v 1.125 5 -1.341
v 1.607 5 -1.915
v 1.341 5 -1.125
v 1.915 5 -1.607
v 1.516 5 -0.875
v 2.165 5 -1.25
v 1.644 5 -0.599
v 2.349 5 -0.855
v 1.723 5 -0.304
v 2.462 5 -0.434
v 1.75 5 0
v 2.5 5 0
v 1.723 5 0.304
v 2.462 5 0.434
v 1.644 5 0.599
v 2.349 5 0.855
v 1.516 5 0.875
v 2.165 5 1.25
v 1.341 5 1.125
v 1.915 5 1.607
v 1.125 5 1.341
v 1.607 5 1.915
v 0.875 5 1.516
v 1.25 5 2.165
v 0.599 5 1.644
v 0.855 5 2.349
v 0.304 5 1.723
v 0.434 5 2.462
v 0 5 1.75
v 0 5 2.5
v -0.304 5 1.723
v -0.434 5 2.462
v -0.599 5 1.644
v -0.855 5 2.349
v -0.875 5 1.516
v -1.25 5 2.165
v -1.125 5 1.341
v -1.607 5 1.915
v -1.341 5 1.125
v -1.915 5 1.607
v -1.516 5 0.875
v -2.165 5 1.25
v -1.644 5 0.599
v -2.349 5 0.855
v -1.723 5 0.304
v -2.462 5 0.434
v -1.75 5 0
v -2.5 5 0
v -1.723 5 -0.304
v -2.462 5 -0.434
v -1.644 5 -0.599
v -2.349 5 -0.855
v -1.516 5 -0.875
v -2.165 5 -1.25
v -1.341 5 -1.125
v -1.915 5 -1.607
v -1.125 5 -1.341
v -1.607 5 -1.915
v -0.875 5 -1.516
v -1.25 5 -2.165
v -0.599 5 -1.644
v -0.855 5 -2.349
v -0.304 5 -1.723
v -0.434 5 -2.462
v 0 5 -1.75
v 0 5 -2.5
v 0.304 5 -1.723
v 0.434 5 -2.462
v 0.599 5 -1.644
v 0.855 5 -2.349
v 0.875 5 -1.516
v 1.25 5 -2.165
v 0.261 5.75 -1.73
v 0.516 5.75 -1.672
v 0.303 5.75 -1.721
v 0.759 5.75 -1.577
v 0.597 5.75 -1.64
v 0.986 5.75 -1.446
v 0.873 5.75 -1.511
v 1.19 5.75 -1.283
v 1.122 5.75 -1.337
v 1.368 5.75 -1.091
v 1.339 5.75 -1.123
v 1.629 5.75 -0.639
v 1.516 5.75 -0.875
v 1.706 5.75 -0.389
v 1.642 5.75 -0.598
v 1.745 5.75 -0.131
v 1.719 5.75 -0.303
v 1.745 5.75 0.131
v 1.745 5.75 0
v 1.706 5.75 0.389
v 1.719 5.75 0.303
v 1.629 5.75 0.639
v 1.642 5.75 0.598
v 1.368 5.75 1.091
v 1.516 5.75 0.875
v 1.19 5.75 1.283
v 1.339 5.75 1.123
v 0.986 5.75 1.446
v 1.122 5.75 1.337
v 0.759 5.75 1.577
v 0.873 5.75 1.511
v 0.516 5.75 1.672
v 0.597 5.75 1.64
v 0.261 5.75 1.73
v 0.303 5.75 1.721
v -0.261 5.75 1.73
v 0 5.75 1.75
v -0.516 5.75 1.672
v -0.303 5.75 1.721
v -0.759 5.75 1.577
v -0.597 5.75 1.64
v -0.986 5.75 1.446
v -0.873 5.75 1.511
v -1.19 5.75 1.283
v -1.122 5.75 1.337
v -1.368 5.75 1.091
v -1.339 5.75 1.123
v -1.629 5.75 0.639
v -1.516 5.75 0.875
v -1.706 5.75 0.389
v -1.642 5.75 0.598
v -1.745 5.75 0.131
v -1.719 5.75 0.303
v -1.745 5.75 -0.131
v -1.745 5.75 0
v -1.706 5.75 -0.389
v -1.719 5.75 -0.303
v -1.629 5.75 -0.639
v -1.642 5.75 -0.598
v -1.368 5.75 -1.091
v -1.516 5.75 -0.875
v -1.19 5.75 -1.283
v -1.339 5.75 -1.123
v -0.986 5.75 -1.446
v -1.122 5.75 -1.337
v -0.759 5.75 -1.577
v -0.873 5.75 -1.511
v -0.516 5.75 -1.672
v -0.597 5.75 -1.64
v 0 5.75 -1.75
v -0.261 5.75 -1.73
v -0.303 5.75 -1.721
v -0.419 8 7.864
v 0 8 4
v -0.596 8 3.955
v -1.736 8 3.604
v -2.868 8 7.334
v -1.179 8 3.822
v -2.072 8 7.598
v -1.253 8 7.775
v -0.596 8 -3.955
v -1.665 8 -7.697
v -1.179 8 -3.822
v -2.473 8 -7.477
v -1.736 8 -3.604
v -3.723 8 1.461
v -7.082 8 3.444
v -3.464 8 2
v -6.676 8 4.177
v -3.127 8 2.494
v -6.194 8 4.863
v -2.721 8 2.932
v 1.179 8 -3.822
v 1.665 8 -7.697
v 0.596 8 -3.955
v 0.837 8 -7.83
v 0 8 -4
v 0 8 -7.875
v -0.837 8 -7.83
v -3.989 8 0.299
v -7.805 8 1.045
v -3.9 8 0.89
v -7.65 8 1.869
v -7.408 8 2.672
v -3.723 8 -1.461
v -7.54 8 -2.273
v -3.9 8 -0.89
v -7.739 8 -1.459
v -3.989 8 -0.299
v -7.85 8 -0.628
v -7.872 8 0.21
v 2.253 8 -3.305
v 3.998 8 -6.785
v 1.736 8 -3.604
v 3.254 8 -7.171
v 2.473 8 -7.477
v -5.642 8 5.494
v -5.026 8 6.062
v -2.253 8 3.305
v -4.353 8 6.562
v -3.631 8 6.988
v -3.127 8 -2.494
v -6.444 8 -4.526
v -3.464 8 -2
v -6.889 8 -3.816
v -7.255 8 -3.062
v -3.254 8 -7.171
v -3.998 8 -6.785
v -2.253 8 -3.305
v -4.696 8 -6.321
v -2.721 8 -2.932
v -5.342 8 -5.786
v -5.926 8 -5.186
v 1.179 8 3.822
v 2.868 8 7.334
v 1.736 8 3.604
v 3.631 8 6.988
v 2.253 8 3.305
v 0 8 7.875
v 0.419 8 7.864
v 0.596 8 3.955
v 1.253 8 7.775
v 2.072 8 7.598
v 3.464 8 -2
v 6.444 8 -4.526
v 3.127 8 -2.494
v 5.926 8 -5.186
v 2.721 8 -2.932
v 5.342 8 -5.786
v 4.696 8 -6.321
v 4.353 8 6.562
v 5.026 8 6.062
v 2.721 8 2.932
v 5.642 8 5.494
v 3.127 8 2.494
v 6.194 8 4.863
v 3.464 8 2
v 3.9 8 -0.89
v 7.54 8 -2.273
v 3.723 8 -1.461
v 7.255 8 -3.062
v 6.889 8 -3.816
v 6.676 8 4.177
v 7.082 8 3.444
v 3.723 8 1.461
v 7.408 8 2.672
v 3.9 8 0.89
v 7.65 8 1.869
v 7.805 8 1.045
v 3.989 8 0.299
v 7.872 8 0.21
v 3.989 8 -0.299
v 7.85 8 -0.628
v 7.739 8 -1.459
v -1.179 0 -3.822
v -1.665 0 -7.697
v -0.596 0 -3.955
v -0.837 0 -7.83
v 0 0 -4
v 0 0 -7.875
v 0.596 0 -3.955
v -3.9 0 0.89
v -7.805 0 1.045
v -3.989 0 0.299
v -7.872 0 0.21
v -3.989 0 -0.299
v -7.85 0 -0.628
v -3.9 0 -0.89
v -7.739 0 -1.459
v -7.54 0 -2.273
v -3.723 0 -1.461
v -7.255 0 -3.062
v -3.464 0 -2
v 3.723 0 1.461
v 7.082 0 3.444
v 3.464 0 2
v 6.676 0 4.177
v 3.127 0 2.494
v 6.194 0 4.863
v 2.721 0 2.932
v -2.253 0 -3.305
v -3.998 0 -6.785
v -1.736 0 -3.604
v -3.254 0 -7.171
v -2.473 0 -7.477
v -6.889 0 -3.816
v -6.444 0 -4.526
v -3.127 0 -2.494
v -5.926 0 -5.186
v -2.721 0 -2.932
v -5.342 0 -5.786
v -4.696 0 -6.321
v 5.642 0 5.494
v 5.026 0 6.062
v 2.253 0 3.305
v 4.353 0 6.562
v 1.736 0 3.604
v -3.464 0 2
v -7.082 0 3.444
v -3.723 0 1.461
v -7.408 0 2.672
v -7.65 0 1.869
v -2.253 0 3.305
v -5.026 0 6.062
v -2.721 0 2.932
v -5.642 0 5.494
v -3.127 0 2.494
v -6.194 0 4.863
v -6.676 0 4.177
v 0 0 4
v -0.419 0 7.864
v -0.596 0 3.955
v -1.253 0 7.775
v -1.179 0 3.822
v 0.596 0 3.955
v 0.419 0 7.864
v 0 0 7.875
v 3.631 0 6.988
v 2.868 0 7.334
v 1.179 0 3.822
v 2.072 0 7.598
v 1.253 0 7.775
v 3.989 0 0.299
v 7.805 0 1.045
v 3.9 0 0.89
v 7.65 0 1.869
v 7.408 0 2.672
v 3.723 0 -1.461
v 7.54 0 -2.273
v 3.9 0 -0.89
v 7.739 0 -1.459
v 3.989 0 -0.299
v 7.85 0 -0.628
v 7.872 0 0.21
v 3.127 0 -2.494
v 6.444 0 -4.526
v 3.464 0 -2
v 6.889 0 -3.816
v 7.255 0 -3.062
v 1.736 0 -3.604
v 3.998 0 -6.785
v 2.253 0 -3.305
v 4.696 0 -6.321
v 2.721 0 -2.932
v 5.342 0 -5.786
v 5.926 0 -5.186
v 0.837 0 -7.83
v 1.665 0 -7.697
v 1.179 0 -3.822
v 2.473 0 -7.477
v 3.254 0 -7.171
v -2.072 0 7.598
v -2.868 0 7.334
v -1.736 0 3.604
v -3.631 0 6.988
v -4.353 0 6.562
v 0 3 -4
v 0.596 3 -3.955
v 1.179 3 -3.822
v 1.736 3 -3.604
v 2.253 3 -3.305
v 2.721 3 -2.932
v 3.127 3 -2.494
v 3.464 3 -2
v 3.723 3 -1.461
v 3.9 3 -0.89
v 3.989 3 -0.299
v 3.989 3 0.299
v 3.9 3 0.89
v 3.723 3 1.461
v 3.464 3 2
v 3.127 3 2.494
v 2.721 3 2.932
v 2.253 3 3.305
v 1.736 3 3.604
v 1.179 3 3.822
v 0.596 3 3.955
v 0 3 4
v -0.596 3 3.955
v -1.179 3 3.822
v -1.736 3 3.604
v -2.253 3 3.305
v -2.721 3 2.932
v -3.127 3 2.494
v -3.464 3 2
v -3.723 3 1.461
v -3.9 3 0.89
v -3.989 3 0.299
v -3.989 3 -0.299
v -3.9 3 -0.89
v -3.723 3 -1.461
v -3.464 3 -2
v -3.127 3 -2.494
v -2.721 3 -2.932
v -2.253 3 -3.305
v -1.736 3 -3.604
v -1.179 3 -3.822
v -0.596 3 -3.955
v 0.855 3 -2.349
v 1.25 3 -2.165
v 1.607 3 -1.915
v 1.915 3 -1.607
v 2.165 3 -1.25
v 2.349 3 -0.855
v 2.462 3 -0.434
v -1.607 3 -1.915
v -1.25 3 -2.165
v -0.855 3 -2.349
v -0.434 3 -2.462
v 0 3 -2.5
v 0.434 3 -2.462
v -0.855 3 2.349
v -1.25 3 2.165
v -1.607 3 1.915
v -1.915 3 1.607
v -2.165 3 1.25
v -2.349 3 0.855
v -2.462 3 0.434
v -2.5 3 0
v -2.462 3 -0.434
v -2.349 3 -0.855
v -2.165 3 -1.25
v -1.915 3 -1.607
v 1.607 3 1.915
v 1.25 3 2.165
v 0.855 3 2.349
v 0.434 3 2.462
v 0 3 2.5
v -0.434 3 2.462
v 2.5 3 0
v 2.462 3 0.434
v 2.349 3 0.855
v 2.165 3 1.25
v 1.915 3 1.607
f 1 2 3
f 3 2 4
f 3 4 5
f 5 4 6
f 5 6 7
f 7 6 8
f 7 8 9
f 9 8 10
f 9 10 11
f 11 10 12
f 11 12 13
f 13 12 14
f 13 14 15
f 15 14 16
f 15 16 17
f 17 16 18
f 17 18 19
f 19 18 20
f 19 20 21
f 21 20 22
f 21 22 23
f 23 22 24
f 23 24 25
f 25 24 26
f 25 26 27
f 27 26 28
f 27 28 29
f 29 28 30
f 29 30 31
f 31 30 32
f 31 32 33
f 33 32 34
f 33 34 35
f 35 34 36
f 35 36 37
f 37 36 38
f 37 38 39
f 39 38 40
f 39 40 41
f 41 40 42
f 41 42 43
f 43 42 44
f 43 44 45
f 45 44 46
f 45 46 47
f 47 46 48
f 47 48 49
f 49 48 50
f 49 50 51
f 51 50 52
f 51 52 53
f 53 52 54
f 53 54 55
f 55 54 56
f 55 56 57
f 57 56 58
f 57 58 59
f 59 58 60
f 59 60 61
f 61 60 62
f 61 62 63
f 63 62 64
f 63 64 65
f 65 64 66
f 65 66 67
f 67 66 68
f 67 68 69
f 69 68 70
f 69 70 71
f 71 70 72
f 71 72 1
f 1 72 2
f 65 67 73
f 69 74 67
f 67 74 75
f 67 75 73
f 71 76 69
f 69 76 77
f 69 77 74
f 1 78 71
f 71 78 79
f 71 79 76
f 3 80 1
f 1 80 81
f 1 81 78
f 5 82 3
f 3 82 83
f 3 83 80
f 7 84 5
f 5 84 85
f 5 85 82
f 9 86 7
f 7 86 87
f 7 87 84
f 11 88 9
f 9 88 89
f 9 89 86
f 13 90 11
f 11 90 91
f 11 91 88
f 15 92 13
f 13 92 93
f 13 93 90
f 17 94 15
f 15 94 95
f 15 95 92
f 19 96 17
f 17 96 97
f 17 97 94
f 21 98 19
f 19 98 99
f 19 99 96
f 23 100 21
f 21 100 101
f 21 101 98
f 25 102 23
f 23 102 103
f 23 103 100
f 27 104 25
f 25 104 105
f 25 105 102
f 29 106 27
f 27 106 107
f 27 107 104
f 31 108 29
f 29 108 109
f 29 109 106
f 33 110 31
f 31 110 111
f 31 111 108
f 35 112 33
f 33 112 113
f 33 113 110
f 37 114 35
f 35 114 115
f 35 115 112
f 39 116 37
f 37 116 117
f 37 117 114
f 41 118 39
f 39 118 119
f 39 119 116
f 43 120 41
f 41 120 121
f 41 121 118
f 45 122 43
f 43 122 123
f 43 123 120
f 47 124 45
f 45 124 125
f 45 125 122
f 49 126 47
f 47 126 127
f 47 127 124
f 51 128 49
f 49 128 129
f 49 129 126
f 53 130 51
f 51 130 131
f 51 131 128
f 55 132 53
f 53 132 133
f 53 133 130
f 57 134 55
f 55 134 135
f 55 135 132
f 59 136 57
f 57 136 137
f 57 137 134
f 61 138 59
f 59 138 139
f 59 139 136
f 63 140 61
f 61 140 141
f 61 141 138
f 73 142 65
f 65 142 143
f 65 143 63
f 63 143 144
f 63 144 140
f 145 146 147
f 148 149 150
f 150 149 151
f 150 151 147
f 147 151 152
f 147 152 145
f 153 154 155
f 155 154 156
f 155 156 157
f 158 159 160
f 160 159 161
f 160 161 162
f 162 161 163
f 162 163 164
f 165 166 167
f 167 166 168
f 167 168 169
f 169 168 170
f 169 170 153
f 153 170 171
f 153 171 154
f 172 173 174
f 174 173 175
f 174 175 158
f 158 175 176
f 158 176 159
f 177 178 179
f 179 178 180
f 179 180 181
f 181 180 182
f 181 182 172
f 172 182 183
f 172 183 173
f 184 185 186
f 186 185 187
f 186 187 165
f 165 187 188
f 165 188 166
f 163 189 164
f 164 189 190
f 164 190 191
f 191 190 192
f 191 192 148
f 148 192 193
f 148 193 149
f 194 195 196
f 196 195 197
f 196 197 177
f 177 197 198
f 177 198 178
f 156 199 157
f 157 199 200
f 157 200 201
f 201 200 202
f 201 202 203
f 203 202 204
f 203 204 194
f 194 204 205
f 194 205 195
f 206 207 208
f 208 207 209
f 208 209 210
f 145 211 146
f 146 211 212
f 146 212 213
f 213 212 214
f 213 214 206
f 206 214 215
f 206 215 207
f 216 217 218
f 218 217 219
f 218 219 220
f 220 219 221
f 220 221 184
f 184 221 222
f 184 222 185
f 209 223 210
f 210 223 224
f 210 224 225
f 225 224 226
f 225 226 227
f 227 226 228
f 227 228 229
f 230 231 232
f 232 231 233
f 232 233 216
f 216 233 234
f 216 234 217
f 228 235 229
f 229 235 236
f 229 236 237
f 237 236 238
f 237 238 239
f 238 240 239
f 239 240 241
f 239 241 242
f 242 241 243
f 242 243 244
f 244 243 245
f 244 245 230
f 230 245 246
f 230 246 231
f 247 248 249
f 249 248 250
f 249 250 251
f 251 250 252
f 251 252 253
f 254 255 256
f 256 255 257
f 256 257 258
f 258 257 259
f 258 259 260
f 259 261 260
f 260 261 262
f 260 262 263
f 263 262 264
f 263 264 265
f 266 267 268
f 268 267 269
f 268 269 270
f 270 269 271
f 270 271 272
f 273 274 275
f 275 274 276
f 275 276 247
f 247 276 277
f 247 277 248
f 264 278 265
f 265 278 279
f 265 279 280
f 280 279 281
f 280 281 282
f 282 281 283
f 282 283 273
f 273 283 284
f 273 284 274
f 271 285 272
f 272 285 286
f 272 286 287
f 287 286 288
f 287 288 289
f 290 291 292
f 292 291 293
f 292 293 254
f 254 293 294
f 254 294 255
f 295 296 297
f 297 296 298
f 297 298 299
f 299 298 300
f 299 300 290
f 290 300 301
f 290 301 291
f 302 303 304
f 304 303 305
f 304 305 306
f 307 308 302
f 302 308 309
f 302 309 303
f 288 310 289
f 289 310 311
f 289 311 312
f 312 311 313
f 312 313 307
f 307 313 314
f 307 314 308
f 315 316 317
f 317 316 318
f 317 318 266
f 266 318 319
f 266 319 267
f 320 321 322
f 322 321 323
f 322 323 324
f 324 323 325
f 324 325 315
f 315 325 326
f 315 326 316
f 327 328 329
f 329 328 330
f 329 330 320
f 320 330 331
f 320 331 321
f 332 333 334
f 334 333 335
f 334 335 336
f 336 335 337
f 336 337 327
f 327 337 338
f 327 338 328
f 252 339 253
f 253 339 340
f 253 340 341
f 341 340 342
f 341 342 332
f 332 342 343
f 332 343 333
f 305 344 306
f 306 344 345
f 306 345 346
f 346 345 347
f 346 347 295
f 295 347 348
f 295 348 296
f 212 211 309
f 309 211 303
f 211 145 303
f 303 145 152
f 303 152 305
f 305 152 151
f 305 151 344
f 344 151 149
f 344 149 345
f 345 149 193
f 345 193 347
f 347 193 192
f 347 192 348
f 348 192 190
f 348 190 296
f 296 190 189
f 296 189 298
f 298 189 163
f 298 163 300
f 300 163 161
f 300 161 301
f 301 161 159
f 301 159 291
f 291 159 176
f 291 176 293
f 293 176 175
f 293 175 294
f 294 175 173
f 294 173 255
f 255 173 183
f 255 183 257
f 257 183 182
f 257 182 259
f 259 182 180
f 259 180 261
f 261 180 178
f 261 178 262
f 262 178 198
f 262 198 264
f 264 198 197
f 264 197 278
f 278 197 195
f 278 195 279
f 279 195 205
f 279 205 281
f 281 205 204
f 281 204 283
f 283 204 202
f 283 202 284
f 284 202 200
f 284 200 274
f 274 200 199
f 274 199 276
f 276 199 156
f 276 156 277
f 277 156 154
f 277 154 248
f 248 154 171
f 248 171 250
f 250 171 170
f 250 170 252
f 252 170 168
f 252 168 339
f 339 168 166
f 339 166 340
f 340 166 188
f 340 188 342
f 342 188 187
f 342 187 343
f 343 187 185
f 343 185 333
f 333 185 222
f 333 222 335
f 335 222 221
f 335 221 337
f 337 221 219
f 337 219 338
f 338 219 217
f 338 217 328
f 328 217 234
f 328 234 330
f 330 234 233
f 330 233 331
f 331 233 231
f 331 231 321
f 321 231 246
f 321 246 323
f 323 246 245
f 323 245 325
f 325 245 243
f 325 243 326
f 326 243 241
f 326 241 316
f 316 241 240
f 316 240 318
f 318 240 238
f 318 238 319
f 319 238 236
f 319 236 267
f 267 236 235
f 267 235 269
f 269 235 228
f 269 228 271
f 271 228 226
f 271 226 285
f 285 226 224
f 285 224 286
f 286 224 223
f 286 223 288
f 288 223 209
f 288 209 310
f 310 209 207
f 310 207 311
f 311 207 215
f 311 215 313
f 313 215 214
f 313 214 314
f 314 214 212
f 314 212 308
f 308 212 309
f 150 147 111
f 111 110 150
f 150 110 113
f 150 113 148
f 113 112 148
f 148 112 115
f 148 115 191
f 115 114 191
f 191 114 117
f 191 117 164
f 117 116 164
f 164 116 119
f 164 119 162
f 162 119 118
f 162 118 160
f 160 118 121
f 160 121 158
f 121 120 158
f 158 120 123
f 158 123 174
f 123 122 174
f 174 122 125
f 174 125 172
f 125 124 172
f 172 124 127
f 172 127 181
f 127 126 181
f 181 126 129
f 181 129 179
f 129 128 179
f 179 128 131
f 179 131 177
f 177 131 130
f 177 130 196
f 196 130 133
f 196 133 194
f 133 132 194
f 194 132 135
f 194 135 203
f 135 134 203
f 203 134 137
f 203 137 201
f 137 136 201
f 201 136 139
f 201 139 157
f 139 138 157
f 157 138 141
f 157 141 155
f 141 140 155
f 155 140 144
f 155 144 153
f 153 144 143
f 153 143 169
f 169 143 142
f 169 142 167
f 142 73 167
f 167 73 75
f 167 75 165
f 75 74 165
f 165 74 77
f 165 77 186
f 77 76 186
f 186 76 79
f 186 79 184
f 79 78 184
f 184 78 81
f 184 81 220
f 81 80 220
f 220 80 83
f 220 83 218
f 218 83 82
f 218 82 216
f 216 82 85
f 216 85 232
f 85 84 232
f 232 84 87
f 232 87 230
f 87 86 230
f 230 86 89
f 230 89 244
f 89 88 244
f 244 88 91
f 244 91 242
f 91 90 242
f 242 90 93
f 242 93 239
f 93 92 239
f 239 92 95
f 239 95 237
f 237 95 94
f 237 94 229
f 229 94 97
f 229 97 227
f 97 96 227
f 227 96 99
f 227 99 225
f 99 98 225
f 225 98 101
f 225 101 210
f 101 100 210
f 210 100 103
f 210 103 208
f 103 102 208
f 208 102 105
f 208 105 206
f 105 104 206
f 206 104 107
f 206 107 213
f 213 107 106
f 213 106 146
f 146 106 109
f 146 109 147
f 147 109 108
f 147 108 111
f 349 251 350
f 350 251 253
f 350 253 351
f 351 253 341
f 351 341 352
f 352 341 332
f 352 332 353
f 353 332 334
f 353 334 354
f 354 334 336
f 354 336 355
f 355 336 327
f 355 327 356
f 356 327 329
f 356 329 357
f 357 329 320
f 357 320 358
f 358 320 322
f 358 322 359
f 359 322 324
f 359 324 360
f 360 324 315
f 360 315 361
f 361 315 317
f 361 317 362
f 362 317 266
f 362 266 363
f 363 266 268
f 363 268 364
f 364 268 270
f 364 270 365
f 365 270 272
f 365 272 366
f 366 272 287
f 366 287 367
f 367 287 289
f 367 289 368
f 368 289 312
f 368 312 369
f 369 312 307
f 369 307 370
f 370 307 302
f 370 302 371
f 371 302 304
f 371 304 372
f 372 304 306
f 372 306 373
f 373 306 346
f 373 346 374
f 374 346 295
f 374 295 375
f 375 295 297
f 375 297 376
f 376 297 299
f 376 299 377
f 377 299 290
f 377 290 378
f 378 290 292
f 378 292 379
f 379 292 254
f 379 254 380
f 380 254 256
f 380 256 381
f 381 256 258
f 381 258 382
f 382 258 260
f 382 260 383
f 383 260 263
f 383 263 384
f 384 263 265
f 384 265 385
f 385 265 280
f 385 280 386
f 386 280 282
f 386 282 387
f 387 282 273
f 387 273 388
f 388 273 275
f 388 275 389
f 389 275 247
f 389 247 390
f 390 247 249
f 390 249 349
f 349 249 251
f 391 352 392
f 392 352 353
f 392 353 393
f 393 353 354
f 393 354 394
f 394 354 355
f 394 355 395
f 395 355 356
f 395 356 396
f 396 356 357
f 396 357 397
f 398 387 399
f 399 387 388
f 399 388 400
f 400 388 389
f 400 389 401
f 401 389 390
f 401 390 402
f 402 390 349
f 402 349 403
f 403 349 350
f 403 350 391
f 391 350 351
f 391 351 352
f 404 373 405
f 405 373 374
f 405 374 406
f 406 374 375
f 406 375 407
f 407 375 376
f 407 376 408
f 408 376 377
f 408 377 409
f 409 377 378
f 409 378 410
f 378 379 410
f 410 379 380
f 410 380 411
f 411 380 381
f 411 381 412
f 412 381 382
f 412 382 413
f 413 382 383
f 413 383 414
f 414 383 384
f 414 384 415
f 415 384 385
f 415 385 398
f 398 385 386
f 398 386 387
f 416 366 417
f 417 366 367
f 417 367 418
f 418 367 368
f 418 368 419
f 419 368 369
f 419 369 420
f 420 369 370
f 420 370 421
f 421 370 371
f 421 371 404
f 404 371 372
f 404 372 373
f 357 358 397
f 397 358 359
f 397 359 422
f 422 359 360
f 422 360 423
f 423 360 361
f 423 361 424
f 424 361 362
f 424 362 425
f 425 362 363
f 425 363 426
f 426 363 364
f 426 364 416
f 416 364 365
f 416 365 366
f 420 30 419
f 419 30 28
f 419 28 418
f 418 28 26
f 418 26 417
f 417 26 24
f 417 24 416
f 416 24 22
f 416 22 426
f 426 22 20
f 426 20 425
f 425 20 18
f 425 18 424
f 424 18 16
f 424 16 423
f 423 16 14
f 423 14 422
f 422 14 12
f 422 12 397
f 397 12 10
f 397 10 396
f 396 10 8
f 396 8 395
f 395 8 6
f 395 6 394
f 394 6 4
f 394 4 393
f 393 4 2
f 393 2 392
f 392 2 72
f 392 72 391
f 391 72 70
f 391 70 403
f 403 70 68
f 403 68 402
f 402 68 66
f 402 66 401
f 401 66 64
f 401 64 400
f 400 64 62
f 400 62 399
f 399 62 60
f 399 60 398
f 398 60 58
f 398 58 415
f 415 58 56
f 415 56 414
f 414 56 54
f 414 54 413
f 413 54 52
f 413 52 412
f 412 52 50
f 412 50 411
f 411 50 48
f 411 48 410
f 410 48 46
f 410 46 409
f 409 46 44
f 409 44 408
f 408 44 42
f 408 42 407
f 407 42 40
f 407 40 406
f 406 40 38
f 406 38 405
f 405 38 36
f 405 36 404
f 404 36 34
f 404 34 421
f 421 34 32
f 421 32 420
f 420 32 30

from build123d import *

# Parameters (mm, degrees)
SKETCH1_R           = 7.875
SKETCH1_R_2         = 1.75
BOSS_EXTRUDE1_DEPTH = 8
SKETCH2_R           = 4
CUT_EXTRUDE1_DEPTH  = 3
CUT_EXTRUDE1_DRAFT  = -45
SKETCH3_R           = 4
CUT_EXTRUDE2_DEPTH  = 5
BOSS_EXTRUDE2_START = 2
SKETCH4_R           = 4
SKETCH4_R_2         = 2.5
BOSS_EXTRUDE2_DEPTH = 2


with BuildPart() as part:
    # Sketch1 → Boss-Extrude1 (new body)
    with BuildSketch(Plane(origin=(0, 0, 0), x_dir=(1, 0, 0), z_dir=(0, 1, 0))):
        with Locations(Location((0, 0, 0), (0, 0, 270))):
            Circle(SKETCH1_R)
        with Locations(Location((0, 0, 0), (0, 0, 270))):
            Circle(SKETCH1_R_2, mode=Mode.SUBTRACT)
    extrude(amount=BOSS_EXTRUDE1_DEPTH)


with BuildPart() as cut_extrude1_tool:
    # Sketch2 → Cut-Extrude1 (with draft: the straight prism first)
    with BuildSketch(Plane(origin=(0, 8, 0), x_dir=(1, 0, 0), z_dir=(0, 1, 0))):
        Circle(SKETCH2_R)
    extrude(amount=-CUT_EXTRUDE1_DEPTH)
    # Cut-Extrude1: the draft: its side faces are tilted about the plane it starts from
    cut_extrude1_sides = [cut_extrude1_tool.faces().sort_by_distance(p)[0] for p in [
        (-4, 6.5, 0),
    ]]
    draft(cut_extrude1_sides, Plane(origin=(0, 8, 0), x_dir=(1, 0, 0), z_dir=(0, 1, 0)), CUT_EXTRUDE1_DRAFT)


with BuildPart() as part_1:
    add(part.part)

    # Cut-Extrude1: cut by cut_extrude1_tool
    add(cut_extrude1_tool.part, mode=Mode.SUBTRACT)

    # Sketch3 → Cut-Extrude2 (cut)
    with BuildSketch(Plane(origin=(0, 0, 0), x_dir=(-1, 0, 0), z_dir=(0, -1, 0))):
        with Locations(Location((0, 0, 0), (0, 0, 90))):
            Circle(SKETCH3_R)
    extrude(amount=-CUT_EXTRUDE2_DEPTH, mode=Mode.SUBTRACT)

    # Sketch4 → Boss-Extrude2 (add)
    with BuildSketch(Plane.XZ.offset(-5).offset(BOSS_EXTRUDE2_START)):
        with Locations(Location((0, 0, 0), (0, 0, 270))):
            Circle(SKETCH4_R)
        with Locations(Location((0, 0, 0), (0, 0, 270))):
            Circle(SKETCH4_R_2, mode=Mode.SUBTRACT)
    extrude(amount=-BOSS_EXTRUDE2_DEPTH)


solid = part_1.part
